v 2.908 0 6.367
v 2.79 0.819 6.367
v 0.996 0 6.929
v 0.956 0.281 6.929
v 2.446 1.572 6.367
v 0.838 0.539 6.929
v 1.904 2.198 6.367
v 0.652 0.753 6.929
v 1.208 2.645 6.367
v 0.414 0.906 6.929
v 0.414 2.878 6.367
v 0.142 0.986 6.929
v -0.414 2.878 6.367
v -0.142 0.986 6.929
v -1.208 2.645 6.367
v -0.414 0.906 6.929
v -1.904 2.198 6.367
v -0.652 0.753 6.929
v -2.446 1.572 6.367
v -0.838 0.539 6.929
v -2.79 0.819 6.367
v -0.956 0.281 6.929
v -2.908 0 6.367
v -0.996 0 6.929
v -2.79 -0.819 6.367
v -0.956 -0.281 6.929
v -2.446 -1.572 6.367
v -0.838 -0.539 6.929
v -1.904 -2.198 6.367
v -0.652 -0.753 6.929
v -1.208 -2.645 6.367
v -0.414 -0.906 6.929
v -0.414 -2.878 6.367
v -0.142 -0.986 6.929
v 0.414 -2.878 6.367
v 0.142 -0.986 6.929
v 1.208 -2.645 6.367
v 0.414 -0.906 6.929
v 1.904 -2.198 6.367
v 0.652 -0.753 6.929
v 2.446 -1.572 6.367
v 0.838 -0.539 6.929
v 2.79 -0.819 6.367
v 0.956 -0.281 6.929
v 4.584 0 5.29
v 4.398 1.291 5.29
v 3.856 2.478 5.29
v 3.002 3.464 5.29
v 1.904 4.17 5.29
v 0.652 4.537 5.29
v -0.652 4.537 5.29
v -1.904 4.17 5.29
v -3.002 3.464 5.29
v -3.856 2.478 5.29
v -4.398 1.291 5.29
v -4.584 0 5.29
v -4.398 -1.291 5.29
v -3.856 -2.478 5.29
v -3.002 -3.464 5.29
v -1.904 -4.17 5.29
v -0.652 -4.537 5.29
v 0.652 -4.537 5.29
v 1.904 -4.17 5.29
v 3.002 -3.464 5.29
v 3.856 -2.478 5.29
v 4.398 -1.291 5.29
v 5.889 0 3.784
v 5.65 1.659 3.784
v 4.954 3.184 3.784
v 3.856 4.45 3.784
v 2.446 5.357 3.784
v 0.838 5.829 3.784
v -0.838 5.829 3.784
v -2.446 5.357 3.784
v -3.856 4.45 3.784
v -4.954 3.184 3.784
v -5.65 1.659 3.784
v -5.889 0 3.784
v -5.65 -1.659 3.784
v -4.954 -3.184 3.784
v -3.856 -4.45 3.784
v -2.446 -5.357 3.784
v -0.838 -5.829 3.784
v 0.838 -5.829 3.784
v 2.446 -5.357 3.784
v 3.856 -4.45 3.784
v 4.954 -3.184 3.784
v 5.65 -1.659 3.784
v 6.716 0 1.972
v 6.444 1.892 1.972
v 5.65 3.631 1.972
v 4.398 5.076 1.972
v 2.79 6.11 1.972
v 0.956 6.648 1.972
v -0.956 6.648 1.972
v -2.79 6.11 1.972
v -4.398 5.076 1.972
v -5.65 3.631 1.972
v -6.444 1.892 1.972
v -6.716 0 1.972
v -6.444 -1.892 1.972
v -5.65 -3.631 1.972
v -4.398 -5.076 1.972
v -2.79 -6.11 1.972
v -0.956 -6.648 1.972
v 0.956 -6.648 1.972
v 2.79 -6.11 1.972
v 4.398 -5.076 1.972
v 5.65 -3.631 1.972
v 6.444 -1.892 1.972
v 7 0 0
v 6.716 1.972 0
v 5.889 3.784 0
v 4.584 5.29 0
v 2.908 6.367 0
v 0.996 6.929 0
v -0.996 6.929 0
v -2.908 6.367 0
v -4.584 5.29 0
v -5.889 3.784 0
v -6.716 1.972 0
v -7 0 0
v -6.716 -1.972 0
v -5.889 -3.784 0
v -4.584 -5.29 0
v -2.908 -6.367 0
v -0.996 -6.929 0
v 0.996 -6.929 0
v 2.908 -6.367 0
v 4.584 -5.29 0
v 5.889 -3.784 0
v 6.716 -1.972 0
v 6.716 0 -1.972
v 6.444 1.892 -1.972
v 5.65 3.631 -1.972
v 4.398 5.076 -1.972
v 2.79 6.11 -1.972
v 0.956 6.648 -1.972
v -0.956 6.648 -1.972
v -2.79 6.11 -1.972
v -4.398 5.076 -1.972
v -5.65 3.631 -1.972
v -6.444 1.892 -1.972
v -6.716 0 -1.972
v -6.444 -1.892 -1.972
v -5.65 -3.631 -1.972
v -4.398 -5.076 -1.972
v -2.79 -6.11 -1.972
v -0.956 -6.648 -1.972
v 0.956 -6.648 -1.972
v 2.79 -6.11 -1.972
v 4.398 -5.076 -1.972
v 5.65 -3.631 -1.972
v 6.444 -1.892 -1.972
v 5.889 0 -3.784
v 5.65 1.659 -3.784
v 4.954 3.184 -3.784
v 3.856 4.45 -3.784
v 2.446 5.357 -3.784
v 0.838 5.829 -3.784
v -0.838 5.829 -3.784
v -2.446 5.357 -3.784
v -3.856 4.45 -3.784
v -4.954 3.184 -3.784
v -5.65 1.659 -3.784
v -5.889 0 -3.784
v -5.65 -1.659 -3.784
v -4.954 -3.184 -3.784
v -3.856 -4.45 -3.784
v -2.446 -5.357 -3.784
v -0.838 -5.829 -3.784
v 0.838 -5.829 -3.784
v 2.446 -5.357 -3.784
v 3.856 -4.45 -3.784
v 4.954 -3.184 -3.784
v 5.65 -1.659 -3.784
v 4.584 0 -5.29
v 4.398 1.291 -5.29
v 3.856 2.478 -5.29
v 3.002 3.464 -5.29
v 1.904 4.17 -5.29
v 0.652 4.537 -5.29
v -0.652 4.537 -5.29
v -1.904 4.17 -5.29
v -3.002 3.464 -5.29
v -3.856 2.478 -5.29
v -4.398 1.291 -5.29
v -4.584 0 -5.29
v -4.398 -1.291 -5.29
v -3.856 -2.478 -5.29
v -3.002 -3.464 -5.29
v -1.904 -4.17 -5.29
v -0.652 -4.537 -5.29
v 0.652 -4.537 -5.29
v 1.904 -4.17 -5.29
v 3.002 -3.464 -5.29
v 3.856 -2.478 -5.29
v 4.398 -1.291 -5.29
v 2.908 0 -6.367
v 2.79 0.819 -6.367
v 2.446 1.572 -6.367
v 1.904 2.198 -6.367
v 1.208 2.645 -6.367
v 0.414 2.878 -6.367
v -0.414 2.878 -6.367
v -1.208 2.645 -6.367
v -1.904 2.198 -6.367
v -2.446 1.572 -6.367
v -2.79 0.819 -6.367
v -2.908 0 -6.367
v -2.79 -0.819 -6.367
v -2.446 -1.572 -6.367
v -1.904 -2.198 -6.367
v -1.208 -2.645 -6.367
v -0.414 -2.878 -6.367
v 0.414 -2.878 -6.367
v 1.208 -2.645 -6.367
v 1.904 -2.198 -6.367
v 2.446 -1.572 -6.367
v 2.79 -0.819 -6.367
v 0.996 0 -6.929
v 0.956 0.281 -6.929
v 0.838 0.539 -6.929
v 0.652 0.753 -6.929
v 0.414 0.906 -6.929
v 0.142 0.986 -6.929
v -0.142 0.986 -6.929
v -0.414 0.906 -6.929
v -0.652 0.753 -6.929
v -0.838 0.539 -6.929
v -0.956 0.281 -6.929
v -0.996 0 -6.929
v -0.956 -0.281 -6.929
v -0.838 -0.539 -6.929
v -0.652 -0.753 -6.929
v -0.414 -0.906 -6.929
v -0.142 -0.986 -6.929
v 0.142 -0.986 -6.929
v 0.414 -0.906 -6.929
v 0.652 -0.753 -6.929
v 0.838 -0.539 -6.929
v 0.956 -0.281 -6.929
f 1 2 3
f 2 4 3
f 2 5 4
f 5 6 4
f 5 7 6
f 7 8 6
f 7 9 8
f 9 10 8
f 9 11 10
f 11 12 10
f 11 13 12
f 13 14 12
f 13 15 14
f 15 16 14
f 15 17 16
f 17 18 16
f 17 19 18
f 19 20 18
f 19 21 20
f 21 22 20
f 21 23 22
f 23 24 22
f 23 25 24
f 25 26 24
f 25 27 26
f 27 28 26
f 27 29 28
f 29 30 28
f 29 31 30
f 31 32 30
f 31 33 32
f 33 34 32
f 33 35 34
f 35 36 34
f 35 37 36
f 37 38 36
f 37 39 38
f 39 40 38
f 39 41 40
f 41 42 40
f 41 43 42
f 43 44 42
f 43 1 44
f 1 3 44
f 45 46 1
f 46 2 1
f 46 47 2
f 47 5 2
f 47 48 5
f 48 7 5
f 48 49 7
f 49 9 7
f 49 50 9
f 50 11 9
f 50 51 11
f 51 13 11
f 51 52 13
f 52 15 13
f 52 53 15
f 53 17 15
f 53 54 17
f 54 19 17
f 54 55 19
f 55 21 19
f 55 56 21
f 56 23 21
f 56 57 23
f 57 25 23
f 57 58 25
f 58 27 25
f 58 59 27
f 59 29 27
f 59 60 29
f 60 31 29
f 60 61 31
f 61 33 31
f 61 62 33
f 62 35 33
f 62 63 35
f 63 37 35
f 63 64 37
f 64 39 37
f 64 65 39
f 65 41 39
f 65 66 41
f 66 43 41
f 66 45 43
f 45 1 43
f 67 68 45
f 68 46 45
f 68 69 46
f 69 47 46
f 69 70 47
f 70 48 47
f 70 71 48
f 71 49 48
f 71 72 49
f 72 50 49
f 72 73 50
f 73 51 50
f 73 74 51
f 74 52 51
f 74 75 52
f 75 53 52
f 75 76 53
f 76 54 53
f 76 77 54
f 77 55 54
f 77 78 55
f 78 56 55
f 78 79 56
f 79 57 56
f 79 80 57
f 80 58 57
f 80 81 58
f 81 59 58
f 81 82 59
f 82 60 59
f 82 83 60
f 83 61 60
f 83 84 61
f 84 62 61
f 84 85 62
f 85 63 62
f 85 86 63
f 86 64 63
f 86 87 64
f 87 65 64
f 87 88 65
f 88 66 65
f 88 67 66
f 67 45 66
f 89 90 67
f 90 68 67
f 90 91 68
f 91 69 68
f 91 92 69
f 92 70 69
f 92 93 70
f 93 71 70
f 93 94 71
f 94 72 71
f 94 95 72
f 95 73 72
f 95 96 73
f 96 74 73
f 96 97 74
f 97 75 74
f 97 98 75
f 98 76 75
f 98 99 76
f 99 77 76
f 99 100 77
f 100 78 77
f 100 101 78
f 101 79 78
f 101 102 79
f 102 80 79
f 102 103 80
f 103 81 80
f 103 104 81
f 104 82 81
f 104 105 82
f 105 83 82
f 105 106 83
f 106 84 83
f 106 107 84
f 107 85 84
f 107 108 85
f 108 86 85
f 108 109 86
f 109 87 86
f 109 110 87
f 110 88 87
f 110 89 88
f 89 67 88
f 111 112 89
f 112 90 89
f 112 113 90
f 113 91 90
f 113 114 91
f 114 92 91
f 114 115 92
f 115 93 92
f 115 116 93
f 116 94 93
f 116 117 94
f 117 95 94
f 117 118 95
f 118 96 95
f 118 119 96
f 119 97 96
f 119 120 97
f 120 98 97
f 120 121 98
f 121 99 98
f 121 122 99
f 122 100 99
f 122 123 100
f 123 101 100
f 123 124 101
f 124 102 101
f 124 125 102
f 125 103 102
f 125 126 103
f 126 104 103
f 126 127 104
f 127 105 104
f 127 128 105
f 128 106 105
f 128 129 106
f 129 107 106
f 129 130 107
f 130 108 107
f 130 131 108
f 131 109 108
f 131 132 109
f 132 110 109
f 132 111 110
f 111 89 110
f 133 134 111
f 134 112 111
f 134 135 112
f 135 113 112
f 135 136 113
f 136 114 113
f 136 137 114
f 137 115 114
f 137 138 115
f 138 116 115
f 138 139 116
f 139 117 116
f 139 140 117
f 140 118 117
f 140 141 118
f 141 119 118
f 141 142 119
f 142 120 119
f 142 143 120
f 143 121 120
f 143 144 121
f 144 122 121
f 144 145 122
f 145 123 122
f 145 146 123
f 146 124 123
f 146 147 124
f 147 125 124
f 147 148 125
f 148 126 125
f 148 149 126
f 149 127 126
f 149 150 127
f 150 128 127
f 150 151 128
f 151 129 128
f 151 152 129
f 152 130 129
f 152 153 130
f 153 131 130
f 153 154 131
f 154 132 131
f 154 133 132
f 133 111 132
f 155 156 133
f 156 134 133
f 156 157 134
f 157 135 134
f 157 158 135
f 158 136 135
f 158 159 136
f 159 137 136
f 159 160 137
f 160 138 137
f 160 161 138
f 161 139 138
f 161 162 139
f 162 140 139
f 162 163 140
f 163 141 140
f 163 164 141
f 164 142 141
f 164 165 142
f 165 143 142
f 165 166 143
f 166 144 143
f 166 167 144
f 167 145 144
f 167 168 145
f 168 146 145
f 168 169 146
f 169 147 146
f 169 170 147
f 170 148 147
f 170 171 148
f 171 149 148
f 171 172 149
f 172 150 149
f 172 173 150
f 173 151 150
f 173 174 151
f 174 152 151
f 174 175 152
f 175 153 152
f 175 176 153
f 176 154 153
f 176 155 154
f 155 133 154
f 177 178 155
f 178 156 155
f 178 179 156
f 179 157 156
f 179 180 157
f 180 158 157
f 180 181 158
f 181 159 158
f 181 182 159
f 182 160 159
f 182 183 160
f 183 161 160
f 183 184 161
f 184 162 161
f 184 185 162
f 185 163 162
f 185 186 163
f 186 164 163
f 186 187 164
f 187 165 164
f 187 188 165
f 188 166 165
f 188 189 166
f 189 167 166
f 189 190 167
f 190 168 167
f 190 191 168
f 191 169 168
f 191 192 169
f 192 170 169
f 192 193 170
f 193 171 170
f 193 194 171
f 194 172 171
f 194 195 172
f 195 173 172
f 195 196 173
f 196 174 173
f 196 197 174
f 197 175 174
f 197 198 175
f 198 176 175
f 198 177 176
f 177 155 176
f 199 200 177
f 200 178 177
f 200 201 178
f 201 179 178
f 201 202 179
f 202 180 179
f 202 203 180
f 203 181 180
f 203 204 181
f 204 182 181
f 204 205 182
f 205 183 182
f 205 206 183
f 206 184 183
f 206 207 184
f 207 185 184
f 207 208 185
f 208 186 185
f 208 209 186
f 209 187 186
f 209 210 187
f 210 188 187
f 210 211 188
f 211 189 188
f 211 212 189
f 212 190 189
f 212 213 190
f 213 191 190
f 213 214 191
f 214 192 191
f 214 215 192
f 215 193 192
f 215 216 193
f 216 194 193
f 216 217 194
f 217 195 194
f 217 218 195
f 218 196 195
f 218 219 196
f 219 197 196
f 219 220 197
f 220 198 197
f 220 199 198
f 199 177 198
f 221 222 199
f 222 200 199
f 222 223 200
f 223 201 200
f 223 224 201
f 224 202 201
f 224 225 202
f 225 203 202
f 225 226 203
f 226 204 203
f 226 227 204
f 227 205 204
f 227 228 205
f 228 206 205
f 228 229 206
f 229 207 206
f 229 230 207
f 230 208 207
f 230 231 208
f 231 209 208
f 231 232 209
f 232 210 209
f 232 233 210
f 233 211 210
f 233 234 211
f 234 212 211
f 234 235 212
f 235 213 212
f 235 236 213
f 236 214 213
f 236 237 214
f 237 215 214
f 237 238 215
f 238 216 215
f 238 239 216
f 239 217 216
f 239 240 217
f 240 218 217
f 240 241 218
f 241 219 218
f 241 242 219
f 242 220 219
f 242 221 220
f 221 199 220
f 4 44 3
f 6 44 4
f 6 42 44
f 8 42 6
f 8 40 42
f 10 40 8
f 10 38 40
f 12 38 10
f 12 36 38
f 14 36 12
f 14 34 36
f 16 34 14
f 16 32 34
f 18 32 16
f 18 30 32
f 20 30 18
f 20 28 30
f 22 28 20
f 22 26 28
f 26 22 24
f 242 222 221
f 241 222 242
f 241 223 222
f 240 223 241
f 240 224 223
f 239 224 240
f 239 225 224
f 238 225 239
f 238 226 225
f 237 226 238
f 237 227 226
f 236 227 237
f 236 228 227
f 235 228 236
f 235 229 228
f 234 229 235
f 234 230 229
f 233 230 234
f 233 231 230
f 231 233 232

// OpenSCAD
//difference() {
  sphere(7, center=true);
//  cube([5, 5, 20], center=true);
//}
